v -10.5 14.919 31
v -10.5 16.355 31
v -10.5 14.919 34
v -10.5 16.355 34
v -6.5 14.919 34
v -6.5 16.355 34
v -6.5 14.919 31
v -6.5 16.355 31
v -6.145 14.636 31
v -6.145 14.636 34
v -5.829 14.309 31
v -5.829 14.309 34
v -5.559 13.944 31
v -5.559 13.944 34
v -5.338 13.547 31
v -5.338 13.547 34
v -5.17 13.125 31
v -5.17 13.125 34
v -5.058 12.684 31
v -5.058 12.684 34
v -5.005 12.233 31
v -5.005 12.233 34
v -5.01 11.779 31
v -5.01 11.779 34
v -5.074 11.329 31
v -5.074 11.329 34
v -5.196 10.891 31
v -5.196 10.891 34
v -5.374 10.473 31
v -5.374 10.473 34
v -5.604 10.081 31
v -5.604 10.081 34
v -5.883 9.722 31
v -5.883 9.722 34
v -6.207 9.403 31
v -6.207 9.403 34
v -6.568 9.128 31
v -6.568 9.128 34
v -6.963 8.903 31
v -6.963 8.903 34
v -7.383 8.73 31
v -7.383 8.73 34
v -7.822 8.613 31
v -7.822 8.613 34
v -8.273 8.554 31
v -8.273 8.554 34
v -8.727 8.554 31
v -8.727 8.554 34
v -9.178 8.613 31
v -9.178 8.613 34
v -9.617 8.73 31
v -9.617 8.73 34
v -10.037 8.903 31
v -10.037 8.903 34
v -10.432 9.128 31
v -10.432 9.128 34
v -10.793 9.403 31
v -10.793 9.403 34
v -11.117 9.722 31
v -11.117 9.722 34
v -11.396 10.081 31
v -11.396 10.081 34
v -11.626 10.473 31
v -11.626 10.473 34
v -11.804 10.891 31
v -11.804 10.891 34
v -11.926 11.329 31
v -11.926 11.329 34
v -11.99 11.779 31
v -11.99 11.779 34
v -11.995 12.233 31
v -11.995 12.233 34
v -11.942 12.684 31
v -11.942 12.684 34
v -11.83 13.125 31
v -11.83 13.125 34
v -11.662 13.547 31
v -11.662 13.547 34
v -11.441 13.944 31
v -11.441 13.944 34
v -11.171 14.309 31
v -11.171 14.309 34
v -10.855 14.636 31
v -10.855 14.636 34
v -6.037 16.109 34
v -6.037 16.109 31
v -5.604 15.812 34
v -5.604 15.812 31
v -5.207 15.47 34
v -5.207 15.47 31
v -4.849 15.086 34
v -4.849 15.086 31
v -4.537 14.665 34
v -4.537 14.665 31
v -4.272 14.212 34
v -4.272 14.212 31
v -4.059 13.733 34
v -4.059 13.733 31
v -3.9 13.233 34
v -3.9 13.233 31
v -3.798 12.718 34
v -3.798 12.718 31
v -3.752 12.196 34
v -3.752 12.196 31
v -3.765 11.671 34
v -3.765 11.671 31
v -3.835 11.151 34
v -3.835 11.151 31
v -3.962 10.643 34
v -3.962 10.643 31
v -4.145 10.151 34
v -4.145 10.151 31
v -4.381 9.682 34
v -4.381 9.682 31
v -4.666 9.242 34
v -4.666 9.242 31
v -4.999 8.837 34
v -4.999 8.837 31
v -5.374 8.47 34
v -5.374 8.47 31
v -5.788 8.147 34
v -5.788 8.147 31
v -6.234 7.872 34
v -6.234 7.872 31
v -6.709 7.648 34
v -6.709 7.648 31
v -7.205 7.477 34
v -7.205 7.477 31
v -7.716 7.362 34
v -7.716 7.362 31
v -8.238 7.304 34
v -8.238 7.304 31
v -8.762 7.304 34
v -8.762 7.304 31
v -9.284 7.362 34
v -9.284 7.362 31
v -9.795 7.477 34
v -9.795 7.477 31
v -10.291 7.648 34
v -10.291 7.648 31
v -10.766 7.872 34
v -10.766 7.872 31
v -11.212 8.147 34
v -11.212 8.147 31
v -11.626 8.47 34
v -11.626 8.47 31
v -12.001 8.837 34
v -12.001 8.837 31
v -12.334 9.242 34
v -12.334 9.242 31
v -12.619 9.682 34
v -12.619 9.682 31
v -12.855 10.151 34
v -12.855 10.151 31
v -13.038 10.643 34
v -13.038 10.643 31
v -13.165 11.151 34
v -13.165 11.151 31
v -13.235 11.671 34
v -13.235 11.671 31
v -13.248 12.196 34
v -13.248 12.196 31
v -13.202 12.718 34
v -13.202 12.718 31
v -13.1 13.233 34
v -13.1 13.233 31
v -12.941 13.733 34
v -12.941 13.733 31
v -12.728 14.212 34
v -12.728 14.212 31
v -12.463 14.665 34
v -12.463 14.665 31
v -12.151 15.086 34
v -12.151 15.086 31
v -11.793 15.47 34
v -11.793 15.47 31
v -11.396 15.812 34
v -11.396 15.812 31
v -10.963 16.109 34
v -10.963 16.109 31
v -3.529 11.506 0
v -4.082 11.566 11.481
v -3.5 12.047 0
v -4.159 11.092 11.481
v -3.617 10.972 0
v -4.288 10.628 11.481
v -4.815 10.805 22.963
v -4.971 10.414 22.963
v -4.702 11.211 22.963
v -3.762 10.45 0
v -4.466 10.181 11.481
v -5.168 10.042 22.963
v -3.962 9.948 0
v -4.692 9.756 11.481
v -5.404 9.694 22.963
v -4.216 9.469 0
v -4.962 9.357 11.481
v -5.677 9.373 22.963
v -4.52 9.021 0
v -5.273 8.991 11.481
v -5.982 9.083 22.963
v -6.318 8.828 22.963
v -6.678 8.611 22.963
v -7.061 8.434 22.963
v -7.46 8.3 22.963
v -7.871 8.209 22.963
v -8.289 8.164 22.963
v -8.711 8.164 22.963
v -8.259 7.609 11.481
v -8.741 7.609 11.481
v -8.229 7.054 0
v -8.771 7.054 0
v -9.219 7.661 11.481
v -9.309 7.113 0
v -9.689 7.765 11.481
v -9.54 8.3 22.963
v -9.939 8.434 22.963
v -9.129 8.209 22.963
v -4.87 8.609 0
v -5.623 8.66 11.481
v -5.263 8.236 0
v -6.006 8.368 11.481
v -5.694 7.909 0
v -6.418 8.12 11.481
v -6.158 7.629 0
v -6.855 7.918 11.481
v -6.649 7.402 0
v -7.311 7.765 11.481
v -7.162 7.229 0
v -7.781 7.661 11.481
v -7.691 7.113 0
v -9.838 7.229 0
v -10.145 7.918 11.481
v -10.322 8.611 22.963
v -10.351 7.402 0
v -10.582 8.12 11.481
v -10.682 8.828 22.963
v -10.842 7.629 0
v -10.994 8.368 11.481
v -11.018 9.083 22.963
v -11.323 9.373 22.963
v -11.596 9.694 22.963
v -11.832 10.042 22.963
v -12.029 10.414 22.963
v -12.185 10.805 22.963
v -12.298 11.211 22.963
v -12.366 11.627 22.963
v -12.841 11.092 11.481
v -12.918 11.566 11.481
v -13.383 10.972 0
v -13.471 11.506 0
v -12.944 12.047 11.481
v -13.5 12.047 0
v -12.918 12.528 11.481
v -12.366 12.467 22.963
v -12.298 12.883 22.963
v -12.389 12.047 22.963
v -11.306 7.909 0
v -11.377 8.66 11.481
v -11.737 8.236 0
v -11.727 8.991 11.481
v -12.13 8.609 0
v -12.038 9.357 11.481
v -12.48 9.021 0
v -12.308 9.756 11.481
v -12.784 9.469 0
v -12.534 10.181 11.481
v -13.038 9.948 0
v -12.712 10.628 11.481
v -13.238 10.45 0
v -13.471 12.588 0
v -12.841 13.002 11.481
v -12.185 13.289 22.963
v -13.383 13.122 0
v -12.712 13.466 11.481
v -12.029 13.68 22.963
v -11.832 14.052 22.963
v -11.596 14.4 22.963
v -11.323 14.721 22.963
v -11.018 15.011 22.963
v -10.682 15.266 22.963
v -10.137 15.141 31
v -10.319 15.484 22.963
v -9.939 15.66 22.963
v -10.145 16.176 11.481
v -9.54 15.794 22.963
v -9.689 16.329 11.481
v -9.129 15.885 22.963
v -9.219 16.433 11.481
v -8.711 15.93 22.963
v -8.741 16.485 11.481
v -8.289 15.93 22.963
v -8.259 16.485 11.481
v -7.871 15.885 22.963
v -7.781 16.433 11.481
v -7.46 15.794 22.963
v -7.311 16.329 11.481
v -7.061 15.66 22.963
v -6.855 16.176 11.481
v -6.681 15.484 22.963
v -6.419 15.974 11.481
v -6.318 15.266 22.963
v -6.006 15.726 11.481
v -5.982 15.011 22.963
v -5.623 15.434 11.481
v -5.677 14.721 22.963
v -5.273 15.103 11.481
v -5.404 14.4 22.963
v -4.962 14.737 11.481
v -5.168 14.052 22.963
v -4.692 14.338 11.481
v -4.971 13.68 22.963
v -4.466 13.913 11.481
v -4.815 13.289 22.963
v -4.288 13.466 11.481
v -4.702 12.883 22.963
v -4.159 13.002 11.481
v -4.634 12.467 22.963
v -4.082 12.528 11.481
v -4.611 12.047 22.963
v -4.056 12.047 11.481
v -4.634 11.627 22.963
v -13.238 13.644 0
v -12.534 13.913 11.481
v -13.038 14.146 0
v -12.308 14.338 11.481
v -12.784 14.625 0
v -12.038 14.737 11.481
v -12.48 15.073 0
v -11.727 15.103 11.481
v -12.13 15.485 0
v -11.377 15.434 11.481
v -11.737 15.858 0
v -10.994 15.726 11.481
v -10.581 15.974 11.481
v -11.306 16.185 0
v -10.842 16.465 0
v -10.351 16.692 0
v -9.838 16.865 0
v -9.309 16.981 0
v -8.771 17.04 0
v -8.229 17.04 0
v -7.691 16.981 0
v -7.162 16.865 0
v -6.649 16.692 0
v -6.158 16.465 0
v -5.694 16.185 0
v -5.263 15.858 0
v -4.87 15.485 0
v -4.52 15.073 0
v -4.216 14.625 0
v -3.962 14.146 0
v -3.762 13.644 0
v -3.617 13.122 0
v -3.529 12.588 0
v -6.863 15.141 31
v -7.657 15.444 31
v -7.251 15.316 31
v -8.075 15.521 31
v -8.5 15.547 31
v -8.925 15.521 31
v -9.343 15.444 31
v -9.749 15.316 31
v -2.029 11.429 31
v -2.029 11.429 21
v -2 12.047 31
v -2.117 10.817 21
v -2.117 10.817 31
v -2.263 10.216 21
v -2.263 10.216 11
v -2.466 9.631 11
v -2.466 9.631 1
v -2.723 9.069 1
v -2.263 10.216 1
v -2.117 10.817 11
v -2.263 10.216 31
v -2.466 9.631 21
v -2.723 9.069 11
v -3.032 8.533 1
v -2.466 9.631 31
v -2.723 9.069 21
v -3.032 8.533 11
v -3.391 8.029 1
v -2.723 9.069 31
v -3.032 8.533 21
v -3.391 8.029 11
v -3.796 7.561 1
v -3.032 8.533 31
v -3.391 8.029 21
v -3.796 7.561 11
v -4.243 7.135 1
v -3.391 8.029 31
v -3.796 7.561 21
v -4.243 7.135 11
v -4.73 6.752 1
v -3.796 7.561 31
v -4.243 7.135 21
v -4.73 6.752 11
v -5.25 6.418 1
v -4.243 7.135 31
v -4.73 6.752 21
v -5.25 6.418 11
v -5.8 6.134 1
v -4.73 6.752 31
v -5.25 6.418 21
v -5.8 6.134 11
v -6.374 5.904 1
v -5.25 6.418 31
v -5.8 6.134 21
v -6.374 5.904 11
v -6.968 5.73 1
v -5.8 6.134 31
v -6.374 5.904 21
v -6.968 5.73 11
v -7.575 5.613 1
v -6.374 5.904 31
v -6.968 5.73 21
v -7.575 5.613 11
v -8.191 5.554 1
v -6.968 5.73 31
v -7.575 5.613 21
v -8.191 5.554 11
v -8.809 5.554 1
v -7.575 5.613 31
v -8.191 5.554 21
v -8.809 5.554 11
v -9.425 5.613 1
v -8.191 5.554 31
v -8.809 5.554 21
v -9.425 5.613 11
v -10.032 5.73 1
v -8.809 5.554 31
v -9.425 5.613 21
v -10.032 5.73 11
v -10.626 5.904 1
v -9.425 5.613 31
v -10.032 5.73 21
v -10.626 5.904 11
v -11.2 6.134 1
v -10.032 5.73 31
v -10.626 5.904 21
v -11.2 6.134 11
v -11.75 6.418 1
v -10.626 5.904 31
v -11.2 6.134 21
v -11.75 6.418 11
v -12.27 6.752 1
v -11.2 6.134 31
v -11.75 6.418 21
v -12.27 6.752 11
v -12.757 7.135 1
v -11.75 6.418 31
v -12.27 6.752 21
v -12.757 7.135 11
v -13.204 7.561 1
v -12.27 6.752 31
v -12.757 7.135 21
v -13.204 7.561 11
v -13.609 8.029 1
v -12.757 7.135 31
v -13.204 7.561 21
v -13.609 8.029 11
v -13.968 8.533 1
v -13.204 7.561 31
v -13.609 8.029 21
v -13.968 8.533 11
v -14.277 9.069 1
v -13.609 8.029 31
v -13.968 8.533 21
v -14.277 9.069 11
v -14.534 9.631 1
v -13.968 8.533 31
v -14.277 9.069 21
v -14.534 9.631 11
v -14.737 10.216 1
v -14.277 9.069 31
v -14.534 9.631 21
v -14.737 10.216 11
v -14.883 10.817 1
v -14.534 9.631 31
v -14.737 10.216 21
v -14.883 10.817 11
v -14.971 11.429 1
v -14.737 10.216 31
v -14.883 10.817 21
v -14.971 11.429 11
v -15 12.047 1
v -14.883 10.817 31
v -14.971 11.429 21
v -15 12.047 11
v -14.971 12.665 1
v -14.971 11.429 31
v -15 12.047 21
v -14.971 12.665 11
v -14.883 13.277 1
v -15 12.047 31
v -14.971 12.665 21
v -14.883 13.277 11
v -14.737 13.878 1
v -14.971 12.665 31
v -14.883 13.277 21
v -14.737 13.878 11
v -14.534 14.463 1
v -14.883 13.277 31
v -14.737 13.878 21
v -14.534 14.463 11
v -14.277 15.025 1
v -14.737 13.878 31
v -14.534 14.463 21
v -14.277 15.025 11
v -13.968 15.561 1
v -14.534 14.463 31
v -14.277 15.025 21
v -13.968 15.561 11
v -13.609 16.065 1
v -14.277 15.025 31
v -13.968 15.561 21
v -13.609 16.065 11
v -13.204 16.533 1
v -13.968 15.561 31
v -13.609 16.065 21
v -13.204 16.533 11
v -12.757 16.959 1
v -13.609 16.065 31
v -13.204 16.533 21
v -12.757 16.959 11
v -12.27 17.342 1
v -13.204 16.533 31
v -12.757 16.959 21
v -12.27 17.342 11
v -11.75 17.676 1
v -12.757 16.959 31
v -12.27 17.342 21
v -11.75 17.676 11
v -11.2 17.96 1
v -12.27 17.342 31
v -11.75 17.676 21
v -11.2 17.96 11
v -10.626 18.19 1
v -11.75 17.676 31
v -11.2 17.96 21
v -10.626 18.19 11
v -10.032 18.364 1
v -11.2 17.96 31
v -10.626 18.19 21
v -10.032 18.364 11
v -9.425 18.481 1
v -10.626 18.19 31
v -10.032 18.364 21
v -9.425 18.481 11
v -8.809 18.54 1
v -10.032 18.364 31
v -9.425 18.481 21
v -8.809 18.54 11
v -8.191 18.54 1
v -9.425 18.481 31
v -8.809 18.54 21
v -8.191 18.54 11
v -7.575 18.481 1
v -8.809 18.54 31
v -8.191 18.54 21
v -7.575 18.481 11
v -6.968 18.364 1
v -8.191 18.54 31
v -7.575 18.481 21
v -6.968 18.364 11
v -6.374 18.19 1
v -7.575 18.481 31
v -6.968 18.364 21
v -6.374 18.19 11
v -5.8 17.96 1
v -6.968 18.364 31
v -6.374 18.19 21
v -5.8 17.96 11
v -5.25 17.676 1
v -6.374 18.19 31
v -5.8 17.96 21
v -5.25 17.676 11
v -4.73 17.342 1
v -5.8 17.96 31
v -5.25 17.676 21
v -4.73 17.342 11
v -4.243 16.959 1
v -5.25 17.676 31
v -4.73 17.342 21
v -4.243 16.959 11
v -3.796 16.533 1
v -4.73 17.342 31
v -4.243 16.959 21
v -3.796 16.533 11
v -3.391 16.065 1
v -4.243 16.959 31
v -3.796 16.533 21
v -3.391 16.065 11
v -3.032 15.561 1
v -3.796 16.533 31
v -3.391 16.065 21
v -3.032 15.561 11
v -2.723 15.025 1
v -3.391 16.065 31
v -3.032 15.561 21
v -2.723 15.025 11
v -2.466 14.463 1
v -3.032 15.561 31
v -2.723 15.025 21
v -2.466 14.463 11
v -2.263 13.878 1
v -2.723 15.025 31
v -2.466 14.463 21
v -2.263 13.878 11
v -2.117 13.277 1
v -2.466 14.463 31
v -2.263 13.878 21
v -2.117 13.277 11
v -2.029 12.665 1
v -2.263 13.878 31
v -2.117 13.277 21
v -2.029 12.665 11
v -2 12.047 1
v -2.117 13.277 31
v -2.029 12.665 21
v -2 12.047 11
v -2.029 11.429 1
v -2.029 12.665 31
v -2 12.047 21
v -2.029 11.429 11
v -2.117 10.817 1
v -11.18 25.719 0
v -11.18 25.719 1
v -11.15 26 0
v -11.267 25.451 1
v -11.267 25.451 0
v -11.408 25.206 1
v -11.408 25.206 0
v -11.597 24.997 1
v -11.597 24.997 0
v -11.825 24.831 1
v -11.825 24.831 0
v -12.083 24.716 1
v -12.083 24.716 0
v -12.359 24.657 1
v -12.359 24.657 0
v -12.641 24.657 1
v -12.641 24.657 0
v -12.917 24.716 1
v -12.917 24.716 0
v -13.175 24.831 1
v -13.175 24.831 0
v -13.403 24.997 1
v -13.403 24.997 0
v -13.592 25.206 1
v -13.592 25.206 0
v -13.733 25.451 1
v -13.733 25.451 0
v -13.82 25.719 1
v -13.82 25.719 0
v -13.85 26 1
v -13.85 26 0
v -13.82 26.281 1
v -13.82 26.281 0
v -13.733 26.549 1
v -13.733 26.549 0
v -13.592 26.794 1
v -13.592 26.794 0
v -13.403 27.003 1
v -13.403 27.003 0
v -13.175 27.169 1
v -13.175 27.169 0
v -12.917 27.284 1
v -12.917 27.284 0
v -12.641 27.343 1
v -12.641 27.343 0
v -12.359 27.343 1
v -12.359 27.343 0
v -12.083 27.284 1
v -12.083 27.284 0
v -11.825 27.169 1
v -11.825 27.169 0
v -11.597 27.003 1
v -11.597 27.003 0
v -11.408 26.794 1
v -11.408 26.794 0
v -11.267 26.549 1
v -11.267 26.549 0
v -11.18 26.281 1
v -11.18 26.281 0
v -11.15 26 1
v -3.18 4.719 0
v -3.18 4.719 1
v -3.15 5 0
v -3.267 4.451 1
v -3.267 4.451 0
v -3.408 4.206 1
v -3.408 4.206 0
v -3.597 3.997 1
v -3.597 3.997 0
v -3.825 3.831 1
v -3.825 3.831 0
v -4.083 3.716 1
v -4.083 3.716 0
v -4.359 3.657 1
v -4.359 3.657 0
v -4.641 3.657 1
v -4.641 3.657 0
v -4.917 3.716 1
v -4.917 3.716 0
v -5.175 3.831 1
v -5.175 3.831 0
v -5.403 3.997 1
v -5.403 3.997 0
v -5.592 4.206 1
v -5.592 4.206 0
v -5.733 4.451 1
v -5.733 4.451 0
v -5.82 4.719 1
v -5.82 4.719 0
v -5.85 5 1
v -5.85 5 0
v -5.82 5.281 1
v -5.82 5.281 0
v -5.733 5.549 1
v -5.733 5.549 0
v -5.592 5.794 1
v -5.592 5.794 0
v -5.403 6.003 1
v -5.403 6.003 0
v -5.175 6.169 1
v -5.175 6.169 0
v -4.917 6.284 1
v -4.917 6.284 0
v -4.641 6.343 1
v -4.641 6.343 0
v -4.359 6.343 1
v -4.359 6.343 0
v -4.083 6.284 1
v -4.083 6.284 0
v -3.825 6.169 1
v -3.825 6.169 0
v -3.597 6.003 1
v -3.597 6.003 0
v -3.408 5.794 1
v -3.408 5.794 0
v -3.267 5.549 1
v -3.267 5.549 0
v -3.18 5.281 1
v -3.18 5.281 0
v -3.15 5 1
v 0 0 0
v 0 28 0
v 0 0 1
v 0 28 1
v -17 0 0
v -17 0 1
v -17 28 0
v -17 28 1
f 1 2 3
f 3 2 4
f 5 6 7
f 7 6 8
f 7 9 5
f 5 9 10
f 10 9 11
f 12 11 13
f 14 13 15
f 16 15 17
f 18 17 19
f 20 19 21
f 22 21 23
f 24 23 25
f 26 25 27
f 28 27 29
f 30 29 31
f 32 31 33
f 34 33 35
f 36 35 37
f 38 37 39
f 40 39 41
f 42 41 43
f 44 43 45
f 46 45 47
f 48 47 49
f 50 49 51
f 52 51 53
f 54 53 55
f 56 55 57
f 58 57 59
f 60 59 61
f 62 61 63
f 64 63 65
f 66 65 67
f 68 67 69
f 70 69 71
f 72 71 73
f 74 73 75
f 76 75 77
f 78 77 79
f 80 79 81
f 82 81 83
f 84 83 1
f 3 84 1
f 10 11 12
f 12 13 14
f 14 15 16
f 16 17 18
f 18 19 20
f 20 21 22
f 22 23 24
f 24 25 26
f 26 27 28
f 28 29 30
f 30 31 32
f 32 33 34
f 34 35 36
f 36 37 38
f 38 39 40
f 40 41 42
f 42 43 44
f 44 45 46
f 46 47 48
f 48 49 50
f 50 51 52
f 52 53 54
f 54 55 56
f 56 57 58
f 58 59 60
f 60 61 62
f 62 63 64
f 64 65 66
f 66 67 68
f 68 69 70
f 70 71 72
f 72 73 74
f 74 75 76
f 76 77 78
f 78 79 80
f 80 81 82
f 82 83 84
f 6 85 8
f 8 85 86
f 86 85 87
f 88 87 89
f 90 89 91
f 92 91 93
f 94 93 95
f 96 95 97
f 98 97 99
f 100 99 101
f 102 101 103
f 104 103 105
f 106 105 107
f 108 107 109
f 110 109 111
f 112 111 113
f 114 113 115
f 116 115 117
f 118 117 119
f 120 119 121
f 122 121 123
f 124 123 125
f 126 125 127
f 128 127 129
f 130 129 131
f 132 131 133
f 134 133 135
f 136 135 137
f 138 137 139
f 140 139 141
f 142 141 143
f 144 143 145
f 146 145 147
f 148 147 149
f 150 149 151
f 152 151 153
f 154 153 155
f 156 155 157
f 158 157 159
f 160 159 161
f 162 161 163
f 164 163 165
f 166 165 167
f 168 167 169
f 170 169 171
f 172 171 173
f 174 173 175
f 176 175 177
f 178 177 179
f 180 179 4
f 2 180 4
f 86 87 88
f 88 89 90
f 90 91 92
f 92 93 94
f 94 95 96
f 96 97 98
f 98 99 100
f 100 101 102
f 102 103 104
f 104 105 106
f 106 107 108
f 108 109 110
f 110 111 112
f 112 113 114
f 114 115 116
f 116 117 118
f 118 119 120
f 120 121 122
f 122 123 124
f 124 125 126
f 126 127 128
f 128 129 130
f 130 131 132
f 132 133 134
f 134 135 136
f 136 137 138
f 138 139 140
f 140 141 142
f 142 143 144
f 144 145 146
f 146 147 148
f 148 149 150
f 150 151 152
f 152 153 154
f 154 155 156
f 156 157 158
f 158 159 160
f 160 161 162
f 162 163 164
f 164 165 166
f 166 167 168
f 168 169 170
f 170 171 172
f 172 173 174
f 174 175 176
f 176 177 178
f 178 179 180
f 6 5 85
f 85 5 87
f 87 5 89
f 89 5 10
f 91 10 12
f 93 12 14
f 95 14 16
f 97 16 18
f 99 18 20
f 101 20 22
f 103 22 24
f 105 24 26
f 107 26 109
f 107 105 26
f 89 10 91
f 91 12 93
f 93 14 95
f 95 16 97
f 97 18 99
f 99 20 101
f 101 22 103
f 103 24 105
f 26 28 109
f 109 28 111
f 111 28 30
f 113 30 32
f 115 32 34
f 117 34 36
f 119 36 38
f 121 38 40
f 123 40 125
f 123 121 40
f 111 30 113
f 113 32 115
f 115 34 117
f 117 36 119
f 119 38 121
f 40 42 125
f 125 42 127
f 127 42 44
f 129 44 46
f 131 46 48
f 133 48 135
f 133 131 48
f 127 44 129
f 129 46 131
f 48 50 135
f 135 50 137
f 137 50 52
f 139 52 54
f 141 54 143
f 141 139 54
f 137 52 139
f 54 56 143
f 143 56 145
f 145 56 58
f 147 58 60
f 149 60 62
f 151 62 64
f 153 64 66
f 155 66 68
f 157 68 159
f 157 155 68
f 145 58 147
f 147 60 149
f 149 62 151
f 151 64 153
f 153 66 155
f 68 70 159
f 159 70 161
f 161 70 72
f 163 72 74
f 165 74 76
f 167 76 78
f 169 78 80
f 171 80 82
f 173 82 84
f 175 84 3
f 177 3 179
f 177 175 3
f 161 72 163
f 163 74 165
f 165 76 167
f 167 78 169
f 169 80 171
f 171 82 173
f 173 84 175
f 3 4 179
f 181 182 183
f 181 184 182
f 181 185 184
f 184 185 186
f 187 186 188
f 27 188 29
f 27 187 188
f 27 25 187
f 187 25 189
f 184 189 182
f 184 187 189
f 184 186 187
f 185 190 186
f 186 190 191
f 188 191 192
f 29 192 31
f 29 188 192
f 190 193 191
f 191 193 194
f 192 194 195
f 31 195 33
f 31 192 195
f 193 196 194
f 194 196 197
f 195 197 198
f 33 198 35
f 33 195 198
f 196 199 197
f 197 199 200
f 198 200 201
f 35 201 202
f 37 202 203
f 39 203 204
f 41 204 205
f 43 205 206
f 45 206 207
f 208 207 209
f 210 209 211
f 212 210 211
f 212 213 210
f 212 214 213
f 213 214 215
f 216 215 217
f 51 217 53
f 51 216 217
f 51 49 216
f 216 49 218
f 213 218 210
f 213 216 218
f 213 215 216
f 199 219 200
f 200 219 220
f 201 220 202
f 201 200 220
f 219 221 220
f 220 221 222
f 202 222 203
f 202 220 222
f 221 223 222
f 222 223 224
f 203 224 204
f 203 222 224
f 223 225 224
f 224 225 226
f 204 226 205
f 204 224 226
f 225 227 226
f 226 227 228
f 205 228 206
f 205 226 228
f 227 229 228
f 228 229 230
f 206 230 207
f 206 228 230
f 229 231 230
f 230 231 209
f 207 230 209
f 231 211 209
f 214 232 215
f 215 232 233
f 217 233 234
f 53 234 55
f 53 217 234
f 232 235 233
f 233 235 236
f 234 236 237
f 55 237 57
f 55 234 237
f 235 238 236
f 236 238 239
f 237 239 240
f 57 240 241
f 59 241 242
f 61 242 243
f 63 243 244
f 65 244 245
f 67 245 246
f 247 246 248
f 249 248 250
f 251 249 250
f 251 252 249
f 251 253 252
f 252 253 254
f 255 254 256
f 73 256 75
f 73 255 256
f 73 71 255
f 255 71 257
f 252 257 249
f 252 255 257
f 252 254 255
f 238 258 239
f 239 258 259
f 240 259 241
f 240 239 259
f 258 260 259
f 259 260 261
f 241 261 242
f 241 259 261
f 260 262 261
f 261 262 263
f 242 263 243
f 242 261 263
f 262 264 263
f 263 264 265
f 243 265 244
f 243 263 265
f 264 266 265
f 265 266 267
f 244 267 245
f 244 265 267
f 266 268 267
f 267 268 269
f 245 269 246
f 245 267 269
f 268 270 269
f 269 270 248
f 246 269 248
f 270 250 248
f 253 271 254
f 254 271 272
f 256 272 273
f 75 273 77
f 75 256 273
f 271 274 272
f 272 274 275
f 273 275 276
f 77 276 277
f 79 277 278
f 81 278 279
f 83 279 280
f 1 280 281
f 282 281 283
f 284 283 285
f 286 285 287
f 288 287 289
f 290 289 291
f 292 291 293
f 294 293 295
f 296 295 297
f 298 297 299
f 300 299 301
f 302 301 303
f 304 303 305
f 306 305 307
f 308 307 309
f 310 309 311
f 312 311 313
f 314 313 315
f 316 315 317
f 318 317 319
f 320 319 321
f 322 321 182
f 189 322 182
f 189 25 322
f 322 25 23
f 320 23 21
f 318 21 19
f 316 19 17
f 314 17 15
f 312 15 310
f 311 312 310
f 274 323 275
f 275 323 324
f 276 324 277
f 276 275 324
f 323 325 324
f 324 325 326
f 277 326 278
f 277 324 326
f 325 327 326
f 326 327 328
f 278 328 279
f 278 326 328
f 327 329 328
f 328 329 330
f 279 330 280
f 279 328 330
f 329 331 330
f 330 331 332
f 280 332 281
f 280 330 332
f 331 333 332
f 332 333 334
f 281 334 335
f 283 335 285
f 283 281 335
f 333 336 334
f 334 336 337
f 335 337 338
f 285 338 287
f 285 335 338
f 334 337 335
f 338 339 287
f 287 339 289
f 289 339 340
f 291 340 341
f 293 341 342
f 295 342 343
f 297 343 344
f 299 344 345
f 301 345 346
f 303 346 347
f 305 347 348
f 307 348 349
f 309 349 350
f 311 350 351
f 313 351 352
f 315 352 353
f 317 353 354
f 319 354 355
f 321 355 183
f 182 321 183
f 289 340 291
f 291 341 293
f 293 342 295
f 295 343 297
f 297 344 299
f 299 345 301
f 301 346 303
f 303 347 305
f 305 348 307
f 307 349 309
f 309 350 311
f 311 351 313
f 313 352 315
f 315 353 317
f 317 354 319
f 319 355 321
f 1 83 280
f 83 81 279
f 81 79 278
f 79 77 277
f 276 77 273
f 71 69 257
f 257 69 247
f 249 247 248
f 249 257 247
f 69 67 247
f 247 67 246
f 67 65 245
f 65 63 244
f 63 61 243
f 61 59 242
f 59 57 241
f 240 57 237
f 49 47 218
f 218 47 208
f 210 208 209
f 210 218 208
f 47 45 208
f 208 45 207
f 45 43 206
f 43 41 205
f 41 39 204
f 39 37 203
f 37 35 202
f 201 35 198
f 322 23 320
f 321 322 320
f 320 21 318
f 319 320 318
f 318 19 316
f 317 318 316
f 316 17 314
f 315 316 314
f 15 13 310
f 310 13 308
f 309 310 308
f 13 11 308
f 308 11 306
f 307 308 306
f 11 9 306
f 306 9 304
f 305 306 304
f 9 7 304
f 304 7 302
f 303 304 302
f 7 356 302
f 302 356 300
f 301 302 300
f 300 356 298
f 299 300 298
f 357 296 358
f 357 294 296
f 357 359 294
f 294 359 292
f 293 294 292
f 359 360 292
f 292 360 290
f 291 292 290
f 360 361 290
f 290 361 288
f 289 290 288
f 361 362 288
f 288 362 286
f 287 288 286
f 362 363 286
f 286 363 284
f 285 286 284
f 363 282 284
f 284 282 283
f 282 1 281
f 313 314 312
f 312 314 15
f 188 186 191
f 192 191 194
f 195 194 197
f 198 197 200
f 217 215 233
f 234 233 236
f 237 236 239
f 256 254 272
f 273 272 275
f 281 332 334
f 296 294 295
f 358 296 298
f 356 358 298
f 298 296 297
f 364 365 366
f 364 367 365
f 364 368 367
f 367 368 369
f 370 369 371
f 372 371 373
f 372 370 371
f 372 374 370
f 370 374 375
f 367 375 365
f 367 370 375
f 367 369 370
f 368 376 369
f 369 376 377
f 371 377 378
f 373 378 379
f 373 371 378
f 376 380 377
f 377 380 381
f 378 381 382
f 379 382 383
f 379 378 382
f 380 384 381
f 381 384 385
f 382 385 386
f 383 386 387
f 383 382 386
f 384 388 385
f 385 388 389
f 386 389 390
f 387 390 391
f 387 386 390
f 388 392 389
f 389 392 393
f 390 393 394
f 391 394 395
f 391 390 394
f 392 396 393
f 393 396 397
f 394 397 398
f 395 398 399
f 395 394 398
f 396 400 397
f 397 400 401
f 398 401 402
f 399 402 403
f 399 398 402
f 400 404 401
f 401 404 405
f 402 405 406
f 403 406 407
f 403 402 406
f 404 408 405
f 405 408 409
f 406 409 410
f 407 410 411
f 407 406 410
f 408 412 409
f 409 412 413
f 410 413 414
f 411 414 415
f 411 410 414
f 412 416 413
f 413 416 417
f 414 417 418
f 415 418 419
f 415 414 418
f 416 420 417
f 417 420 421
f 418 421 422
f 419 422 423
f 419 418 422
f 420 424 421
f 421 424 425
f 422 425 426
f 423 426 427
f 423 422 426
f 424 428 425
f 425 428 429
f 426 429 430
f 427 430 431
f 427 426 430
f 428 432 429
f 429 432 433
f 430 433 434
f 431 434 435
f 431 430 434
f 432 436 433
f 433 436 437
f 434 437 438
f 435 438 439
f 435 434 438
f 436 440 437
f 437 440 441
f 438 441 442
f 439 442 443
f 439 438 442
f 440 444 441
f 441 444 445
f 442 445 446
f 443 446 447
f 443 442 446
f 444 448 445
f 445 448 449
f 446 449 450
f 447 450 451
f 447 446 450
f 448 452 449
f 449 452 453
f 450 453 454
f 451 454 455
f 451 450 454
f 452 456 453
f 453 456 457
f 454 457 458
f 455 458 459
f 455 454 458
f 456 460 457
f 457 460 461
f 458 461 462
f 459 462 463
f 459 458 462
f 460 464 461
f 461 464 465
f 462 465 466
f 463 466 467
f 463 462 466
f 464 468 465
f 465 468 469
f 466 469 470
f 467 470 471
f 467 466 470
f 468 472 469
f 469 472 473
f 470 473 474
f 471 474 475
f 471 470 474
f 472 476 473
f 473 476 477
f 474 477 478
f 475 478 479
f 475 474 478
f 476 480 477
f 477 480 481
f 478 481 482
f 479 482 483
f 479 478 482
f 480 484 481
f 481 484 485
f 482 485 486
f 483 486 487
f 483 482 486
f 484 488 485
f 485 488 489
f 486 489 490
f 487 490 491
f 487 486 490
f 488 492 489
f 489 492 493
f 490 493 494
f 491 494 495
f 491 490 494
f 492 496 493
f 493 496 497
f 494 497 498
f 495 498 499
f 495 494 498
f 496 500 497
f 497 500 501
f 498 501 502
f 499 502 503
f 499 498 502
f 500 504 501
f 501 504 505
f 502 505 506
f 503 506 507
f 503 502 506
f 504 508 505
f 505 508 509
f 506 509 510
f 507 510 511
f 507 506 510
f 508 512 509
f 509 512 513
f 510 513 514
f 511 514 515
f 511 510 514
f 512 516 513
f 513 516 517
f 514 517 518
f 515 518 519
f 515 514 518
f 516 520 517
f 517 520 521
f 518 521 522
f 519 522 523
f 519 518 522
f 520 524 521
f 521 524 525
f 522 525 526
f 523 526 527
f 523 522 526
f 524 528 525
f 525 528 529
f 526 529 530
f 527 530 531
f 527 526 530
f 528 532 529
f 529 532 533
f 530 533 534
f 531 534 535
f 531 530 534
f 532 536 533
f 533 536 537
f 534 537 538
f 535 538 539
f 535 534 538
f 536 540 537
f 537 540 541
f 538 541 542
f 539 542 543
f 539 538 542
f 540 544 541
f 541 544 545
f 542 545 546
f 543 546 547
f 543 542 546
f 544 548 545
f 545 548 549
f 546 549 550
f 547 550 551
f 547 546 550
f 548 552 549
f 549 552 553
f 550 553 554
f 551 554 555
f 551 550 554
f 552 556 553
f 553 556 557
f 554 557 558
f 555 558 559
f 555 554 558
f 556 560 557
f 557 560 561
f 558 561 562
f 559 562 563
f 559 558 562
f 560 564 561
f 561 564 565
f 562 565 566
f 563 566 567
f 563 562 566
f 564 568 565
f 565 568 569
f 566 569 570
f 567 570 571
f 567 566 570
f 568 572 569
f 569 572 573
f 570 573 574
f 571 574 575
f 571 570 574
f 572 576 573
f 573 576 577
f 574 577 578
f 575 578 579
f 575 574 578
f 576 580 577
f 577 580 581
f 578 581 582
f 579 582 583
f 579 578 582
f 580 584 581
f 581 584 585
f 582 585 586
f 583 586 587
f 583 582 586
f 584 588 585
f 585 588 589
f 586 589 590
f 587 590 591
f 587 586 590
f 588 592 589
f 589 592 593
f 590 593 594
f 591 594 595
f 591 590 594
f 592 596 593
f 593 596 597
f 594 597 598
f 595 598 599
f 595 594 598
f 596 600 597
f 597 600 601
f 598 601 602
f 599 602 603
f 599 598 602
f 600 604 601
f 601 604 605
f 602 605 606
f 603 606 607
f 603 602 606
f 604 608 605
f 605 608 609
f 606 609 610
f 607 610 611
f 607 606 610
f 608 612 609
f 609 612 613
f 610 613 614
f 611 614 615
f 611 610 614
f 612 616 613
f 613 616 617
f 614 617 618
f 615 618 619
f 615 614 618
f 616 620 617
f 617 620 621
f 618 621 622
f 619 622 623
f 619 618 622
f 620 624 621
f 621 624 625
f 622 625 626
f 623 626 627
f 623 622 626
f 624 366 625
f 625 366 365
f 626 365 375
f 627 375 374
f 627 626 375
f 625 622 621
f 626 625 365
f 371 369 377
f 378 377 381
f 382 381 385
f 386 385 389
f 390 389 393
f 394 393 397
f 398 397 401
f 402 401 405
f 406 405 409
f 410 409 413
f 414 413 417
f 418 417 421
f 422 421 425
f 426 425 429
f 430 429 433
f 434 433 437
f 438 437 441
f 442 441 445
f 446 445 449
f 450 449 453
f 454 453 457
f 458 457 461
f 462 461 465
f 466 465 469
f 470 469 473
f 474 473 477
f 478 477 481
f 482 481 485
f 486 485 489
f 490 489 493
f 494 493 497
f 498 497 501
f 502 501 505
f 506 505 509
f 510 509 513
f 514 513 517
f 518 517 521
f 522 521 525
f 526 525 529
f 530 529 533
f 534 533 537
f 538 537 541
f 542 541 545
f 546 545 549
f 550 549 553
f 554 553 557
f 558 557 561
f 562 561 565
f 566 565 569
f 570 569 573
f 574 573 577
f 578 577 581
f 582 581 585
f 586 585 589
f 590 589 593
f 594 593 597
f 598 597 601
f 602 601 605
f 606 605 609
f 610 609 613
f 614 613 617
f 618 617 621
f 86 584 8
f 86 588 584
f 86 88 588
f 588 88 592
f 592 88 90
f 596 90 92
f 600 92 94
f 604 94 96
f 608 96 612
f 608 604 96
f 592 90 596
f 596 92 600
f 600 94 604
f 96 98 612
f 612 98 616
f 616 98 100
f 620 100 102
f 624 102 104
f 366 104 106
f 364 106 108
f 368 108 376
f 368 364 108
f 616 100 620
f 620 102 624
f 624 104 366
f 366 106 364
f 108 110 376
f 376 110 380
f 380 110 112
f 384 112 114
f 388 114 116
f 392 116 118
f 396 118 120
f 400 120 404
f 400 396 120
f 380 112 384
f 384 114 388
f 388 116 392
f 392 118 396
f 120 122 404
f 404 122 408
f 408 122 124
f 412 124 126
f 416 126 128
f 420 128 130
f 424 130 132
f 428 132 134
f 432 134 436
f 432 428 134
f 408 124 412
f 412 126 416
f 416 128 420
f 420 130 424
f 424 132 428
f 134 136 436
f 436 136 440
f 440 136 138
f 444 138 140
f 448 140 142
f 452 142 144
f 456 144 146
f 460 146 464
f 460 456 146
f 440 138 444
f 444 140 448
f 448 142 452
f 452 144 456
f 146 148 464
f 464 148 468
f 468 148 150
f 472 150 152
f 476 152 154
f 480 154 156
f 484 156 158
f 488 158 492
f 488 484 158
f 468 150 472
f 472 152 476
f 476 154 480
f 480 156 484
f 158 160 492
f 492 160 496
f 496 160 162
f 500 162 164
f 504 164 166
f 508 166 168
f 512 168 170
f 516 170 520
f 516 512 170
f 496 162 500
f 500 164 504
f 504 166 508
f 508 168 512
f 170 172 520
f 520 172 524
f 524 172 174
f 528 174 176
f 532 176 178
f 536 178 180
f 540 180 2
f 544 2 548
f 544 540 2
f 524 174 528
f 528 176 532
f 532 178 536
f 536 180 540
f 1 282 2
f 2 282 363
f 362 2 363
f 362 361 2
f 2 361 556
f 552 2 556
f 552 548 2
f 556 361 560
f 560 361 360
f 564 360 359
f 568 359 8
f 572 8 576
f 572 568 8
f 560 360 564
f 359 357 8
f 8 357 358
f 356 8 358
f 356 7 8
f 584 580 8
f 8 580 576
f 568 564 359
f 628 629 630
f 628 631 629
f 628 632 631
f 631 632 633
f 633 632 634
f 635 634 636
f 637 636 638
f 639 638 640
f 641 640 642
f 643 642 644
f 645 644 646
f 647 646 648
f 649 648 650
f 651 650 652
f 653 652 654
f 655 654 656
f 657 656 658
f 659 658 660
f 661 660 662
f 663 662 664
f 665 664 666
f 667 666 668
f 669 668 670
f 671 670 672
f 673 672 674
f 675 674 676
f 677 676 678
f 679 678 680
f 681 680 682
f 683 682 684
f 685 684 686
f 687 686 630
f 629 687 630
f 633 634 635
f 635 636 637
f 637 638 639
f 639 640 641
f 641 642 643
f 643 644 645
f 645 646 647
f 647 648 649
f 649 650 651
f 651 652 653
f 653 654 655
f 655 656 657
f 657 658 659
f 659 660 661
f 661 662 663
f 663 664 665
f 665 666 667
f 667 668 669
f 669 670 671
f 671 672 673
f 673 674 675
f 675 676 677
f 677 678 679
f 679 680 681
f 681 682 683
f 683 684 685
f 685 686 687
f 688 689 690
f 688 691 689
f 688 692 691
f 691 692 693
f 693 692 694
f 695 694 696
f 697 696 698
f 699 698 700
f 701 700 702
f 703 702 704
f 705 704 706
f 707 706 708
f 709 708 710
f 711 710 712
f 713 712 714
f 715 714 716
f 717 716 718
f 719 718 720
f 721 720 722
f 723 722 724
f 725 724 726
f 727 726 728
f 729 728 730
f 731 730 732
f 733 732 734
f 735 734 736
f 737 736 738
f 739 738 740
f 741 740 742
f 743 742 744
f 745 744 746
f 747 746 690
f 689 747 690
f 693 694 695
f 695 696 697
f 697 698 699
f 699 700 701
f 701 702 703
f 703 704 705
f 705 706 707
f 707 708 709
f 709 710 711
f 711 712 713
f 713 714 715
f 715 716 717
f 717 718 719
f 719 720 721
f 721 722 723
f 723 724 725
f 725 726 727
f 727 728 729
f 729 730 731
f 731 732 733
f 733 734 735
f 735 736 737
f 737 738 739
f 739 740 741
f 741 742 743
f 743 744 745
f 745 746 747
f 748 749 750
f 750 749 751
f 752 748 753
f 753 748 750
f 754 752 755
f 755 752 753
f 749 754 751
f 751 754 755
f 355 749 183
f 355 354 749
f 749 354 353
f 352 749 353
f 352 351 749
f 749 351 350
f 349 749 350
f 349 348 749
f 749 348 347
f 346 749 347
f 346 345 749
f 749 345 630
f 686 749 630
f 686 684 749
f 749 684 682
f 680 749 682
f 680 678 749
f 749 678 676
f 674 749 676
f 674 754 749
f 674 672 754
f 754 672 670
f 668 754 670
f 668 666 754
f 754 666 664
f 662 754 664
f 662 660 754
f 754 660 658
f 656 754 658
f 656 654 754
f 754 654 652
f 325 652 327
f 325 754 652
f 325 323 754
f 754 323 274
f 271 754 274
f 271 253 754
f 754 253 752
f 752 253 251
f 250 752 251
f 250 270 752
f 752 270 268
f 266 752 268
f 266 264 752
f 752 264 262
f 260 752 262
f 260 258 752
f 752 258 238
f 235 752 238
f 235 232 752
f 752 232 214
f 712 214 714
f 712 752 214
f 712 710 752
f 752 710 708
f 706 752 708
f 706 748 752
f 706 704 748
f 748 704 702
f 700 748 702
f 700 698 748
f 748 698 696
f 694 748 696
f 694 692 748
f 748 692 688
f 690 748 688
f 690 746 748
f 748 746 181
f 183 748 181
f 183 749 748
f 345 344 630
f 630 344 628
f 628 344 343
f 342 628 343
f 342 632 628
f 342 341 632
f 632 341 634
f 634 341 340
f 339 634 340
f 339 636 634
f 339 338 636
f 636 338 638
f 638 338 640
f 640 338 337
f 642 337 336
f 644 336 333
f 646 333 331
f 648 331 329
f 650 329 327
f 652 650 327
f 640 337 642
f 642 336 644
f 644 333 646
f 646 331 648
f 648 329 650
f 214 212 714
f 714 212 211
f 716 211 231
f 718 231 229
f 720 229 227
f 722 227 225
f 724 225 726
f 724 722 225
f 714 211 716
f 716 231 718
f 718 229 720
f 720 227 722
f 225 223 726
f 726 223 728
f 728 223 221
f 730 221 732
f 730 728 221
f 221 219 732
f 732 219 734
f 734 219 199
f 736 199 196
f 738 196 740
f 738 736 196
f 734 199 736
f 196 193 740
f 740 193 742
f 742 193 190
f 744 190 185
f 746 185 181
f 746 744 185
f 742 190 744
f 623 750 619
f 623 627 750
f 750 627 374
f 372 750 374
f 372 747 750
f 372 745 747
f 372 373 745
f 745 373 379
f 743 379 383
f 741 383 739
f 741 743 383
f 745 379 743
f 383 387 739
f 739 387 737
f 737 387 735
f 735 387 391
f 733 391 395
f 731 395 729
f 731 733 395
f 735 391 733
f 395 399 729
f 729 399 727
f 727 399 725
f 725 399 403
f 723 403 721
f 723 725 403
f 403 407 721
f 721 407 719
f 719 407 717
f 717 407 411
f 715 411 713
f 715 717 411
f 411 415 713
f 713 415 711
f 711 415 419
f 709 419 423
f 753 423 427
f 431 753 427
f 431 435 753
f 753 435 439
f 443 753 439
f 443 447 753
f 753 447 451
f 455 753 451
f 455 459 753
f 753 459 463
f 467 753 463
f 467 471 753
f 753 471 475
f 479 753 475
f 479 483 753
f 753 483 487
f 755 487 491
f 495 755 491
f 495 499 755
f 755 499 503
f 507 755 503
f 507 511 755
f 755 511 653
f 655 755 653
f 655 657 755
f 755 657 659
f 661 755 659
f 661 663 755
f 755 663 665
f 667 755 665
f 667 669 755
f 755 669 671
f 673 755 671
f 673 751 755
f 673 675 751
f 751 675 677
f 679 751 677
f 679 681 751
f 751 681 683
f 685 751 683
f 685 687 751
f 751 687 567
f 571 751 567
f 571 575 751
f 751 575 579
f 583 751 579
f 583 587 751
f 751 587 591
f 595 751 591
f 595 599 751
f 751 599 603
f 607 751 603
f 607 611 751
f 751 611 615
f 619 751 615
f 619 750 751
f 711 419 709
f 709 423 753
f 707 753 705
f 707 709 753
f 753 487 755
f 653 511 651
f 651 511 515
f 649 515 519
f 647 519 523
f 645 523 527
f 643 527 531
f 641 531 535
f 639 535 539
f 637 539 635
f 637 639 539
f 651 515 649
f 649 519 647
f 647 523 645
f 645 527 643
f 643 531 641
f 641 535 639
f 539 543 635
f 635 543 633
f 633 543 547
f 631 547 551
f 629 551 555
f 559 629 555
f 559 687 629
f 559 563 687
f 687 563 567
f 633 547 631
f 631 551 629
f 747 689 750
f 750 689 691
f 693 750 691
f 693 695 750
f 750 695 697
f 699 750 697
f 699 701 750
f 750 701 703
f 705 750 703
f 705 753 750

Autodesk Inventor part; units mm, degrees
ref_plane "YZ Plane" through (0, 0, 0) normal (1, 0, 0) x (0, 1, 0)
ref_plane "XZ Plane" through (0, 0, 0) normal (0, 1, 0) x (-1, 0, 0)
ref_plane "XY Plane" through (0, 0, 0) normal (0, 0, 1) x (1, 0, 0)
sketch "Sketch1" plane through (0, 0, 0) normal (0, 0, 1) x (1, 0, 0)
  line L0 (-17, 28) -> (0, 28)
  line L1 (0, 28) -> (0, 0)
  line L2 (0, 0) -> (-17, 0)
  line L3 (-17, 0) -> (-17, 28)
  dimension "d0" = 17
  dimension "d1" = 28
extrude "Extrusion1" add sketch "Sketch1" along normal blind 1
sketch "Sketch2" plane through (0, 0, 1) normal (0, 0, 1) x (1, 0, 0)
  line L0 (-17, 28) -> (-17, 0) projected
  line L1 (0, 28) -> (-17, 28) projected
  line L2 (0, 0) -> (0, 28) projected
  line L3 (-17, 0) -> (0, 0) projected
  circle A0 centre (-12.5, 26) radius 1.35
  circle A1 centre (-4.5, 5) radius 1.35
  dimension "d4" = 2.7
  dimension "d5" = 2.7
  dimension "d6" = 4.5
  dimension "d7" = 4.5
  dimension "d8" = 2
  dimension "d9" = 5
extrude "Extrusion2" cut sketch "Sketch2" against normal through all contours A0 | A1
sketch "Sketch3" plane through (0, 0, 1) normal (0, 0, 1) x (1, 0, 0)
  circle A0 centre (-12.5, 26) radius 1.35 projected
  circle A1 centre (-4.5, 5) radius 1.35 projected
  line L0 (0, 28) -> (-17, 28) projected
  line L1 (-17, 28) -> (-17, 0) projected
  line L2 (-17, 0) -> (0, 0) projected
  line L3 (0, 0) -> (0, 28) projected
  circle A2 centre (-8.5, 12.047) radius 6.5
  dimension "d12" = 13
  dimension "d13" = 12.047
extrude "Extrusion3" add sketch "Sketch3" along normal blind 30 contours A2
sketch "Sketch4" plane through (-8.5, 12.047, 31) normal (0, 0, 1) x (1, 0, 0)
  circle A0 centre (0, 0) radius 6.5 projected
  circle A1 centre (0, 0) radius 3.5
  point P0 (8.5, -12.047)
  dimension "d16" = 7
sketch "Sketch5" plane through (0, 0, 0) normal (0, 0, -1) x (-1, 0, 0)
  circle A0 centre (8.5, 12.047) radius 6.5 projected
  circle A1 centre (8.5, 12.047) radius 5
  point P0 (0, 0)
  dimension "d17" = 10
loft "Loft1" cut profiles "Sketch5", "Sketch4" contours A1 / A1
sketch "Sketch6" plane through (-8.5, 12.047, 31) normal (0, 0, 1) x (1, 0, 0)
  circle A0 centre (0, 0) radius 3.5 projected
  circle A1 centre (0, 0) radius 4.75
  point P0 (8.5, -12.047)
  dimension "d26" = 9.5
extrude "Extrusion6" add sketch "Sketch6" along normal blind 3
sketch "Sketch7" plane through (-8.5, 12.047, 34) normal (0, 0, 1) x (1, 0, 0)
  circle A0 centre (0, 0) radius 3.5 projected
  circle A1 centre (0, 0) radius 4.75 projected
  line L0 (2, 0) -> (-2, 0)
  line L1 (-2, 0) -> (-2, 6)
  line L2 (-2, 6) -> (2, 6)
  line L3 (2, 6) -> (2, 0)
  point P0 (8.5, -12.047)
  dimension "d29" = 4
  dimension "d30" = 2
extrude "Extrusion7" cut sketch "Sketch7" against normal up to surface (3 mm away) contours L3 L0 L1 A0 | A0 L1 A1 L3 | A1 L1 L2 L3 picked at (0.1416, 1.158) picked at (-1.4244, 4.0721)
properties part number "TORRE"
